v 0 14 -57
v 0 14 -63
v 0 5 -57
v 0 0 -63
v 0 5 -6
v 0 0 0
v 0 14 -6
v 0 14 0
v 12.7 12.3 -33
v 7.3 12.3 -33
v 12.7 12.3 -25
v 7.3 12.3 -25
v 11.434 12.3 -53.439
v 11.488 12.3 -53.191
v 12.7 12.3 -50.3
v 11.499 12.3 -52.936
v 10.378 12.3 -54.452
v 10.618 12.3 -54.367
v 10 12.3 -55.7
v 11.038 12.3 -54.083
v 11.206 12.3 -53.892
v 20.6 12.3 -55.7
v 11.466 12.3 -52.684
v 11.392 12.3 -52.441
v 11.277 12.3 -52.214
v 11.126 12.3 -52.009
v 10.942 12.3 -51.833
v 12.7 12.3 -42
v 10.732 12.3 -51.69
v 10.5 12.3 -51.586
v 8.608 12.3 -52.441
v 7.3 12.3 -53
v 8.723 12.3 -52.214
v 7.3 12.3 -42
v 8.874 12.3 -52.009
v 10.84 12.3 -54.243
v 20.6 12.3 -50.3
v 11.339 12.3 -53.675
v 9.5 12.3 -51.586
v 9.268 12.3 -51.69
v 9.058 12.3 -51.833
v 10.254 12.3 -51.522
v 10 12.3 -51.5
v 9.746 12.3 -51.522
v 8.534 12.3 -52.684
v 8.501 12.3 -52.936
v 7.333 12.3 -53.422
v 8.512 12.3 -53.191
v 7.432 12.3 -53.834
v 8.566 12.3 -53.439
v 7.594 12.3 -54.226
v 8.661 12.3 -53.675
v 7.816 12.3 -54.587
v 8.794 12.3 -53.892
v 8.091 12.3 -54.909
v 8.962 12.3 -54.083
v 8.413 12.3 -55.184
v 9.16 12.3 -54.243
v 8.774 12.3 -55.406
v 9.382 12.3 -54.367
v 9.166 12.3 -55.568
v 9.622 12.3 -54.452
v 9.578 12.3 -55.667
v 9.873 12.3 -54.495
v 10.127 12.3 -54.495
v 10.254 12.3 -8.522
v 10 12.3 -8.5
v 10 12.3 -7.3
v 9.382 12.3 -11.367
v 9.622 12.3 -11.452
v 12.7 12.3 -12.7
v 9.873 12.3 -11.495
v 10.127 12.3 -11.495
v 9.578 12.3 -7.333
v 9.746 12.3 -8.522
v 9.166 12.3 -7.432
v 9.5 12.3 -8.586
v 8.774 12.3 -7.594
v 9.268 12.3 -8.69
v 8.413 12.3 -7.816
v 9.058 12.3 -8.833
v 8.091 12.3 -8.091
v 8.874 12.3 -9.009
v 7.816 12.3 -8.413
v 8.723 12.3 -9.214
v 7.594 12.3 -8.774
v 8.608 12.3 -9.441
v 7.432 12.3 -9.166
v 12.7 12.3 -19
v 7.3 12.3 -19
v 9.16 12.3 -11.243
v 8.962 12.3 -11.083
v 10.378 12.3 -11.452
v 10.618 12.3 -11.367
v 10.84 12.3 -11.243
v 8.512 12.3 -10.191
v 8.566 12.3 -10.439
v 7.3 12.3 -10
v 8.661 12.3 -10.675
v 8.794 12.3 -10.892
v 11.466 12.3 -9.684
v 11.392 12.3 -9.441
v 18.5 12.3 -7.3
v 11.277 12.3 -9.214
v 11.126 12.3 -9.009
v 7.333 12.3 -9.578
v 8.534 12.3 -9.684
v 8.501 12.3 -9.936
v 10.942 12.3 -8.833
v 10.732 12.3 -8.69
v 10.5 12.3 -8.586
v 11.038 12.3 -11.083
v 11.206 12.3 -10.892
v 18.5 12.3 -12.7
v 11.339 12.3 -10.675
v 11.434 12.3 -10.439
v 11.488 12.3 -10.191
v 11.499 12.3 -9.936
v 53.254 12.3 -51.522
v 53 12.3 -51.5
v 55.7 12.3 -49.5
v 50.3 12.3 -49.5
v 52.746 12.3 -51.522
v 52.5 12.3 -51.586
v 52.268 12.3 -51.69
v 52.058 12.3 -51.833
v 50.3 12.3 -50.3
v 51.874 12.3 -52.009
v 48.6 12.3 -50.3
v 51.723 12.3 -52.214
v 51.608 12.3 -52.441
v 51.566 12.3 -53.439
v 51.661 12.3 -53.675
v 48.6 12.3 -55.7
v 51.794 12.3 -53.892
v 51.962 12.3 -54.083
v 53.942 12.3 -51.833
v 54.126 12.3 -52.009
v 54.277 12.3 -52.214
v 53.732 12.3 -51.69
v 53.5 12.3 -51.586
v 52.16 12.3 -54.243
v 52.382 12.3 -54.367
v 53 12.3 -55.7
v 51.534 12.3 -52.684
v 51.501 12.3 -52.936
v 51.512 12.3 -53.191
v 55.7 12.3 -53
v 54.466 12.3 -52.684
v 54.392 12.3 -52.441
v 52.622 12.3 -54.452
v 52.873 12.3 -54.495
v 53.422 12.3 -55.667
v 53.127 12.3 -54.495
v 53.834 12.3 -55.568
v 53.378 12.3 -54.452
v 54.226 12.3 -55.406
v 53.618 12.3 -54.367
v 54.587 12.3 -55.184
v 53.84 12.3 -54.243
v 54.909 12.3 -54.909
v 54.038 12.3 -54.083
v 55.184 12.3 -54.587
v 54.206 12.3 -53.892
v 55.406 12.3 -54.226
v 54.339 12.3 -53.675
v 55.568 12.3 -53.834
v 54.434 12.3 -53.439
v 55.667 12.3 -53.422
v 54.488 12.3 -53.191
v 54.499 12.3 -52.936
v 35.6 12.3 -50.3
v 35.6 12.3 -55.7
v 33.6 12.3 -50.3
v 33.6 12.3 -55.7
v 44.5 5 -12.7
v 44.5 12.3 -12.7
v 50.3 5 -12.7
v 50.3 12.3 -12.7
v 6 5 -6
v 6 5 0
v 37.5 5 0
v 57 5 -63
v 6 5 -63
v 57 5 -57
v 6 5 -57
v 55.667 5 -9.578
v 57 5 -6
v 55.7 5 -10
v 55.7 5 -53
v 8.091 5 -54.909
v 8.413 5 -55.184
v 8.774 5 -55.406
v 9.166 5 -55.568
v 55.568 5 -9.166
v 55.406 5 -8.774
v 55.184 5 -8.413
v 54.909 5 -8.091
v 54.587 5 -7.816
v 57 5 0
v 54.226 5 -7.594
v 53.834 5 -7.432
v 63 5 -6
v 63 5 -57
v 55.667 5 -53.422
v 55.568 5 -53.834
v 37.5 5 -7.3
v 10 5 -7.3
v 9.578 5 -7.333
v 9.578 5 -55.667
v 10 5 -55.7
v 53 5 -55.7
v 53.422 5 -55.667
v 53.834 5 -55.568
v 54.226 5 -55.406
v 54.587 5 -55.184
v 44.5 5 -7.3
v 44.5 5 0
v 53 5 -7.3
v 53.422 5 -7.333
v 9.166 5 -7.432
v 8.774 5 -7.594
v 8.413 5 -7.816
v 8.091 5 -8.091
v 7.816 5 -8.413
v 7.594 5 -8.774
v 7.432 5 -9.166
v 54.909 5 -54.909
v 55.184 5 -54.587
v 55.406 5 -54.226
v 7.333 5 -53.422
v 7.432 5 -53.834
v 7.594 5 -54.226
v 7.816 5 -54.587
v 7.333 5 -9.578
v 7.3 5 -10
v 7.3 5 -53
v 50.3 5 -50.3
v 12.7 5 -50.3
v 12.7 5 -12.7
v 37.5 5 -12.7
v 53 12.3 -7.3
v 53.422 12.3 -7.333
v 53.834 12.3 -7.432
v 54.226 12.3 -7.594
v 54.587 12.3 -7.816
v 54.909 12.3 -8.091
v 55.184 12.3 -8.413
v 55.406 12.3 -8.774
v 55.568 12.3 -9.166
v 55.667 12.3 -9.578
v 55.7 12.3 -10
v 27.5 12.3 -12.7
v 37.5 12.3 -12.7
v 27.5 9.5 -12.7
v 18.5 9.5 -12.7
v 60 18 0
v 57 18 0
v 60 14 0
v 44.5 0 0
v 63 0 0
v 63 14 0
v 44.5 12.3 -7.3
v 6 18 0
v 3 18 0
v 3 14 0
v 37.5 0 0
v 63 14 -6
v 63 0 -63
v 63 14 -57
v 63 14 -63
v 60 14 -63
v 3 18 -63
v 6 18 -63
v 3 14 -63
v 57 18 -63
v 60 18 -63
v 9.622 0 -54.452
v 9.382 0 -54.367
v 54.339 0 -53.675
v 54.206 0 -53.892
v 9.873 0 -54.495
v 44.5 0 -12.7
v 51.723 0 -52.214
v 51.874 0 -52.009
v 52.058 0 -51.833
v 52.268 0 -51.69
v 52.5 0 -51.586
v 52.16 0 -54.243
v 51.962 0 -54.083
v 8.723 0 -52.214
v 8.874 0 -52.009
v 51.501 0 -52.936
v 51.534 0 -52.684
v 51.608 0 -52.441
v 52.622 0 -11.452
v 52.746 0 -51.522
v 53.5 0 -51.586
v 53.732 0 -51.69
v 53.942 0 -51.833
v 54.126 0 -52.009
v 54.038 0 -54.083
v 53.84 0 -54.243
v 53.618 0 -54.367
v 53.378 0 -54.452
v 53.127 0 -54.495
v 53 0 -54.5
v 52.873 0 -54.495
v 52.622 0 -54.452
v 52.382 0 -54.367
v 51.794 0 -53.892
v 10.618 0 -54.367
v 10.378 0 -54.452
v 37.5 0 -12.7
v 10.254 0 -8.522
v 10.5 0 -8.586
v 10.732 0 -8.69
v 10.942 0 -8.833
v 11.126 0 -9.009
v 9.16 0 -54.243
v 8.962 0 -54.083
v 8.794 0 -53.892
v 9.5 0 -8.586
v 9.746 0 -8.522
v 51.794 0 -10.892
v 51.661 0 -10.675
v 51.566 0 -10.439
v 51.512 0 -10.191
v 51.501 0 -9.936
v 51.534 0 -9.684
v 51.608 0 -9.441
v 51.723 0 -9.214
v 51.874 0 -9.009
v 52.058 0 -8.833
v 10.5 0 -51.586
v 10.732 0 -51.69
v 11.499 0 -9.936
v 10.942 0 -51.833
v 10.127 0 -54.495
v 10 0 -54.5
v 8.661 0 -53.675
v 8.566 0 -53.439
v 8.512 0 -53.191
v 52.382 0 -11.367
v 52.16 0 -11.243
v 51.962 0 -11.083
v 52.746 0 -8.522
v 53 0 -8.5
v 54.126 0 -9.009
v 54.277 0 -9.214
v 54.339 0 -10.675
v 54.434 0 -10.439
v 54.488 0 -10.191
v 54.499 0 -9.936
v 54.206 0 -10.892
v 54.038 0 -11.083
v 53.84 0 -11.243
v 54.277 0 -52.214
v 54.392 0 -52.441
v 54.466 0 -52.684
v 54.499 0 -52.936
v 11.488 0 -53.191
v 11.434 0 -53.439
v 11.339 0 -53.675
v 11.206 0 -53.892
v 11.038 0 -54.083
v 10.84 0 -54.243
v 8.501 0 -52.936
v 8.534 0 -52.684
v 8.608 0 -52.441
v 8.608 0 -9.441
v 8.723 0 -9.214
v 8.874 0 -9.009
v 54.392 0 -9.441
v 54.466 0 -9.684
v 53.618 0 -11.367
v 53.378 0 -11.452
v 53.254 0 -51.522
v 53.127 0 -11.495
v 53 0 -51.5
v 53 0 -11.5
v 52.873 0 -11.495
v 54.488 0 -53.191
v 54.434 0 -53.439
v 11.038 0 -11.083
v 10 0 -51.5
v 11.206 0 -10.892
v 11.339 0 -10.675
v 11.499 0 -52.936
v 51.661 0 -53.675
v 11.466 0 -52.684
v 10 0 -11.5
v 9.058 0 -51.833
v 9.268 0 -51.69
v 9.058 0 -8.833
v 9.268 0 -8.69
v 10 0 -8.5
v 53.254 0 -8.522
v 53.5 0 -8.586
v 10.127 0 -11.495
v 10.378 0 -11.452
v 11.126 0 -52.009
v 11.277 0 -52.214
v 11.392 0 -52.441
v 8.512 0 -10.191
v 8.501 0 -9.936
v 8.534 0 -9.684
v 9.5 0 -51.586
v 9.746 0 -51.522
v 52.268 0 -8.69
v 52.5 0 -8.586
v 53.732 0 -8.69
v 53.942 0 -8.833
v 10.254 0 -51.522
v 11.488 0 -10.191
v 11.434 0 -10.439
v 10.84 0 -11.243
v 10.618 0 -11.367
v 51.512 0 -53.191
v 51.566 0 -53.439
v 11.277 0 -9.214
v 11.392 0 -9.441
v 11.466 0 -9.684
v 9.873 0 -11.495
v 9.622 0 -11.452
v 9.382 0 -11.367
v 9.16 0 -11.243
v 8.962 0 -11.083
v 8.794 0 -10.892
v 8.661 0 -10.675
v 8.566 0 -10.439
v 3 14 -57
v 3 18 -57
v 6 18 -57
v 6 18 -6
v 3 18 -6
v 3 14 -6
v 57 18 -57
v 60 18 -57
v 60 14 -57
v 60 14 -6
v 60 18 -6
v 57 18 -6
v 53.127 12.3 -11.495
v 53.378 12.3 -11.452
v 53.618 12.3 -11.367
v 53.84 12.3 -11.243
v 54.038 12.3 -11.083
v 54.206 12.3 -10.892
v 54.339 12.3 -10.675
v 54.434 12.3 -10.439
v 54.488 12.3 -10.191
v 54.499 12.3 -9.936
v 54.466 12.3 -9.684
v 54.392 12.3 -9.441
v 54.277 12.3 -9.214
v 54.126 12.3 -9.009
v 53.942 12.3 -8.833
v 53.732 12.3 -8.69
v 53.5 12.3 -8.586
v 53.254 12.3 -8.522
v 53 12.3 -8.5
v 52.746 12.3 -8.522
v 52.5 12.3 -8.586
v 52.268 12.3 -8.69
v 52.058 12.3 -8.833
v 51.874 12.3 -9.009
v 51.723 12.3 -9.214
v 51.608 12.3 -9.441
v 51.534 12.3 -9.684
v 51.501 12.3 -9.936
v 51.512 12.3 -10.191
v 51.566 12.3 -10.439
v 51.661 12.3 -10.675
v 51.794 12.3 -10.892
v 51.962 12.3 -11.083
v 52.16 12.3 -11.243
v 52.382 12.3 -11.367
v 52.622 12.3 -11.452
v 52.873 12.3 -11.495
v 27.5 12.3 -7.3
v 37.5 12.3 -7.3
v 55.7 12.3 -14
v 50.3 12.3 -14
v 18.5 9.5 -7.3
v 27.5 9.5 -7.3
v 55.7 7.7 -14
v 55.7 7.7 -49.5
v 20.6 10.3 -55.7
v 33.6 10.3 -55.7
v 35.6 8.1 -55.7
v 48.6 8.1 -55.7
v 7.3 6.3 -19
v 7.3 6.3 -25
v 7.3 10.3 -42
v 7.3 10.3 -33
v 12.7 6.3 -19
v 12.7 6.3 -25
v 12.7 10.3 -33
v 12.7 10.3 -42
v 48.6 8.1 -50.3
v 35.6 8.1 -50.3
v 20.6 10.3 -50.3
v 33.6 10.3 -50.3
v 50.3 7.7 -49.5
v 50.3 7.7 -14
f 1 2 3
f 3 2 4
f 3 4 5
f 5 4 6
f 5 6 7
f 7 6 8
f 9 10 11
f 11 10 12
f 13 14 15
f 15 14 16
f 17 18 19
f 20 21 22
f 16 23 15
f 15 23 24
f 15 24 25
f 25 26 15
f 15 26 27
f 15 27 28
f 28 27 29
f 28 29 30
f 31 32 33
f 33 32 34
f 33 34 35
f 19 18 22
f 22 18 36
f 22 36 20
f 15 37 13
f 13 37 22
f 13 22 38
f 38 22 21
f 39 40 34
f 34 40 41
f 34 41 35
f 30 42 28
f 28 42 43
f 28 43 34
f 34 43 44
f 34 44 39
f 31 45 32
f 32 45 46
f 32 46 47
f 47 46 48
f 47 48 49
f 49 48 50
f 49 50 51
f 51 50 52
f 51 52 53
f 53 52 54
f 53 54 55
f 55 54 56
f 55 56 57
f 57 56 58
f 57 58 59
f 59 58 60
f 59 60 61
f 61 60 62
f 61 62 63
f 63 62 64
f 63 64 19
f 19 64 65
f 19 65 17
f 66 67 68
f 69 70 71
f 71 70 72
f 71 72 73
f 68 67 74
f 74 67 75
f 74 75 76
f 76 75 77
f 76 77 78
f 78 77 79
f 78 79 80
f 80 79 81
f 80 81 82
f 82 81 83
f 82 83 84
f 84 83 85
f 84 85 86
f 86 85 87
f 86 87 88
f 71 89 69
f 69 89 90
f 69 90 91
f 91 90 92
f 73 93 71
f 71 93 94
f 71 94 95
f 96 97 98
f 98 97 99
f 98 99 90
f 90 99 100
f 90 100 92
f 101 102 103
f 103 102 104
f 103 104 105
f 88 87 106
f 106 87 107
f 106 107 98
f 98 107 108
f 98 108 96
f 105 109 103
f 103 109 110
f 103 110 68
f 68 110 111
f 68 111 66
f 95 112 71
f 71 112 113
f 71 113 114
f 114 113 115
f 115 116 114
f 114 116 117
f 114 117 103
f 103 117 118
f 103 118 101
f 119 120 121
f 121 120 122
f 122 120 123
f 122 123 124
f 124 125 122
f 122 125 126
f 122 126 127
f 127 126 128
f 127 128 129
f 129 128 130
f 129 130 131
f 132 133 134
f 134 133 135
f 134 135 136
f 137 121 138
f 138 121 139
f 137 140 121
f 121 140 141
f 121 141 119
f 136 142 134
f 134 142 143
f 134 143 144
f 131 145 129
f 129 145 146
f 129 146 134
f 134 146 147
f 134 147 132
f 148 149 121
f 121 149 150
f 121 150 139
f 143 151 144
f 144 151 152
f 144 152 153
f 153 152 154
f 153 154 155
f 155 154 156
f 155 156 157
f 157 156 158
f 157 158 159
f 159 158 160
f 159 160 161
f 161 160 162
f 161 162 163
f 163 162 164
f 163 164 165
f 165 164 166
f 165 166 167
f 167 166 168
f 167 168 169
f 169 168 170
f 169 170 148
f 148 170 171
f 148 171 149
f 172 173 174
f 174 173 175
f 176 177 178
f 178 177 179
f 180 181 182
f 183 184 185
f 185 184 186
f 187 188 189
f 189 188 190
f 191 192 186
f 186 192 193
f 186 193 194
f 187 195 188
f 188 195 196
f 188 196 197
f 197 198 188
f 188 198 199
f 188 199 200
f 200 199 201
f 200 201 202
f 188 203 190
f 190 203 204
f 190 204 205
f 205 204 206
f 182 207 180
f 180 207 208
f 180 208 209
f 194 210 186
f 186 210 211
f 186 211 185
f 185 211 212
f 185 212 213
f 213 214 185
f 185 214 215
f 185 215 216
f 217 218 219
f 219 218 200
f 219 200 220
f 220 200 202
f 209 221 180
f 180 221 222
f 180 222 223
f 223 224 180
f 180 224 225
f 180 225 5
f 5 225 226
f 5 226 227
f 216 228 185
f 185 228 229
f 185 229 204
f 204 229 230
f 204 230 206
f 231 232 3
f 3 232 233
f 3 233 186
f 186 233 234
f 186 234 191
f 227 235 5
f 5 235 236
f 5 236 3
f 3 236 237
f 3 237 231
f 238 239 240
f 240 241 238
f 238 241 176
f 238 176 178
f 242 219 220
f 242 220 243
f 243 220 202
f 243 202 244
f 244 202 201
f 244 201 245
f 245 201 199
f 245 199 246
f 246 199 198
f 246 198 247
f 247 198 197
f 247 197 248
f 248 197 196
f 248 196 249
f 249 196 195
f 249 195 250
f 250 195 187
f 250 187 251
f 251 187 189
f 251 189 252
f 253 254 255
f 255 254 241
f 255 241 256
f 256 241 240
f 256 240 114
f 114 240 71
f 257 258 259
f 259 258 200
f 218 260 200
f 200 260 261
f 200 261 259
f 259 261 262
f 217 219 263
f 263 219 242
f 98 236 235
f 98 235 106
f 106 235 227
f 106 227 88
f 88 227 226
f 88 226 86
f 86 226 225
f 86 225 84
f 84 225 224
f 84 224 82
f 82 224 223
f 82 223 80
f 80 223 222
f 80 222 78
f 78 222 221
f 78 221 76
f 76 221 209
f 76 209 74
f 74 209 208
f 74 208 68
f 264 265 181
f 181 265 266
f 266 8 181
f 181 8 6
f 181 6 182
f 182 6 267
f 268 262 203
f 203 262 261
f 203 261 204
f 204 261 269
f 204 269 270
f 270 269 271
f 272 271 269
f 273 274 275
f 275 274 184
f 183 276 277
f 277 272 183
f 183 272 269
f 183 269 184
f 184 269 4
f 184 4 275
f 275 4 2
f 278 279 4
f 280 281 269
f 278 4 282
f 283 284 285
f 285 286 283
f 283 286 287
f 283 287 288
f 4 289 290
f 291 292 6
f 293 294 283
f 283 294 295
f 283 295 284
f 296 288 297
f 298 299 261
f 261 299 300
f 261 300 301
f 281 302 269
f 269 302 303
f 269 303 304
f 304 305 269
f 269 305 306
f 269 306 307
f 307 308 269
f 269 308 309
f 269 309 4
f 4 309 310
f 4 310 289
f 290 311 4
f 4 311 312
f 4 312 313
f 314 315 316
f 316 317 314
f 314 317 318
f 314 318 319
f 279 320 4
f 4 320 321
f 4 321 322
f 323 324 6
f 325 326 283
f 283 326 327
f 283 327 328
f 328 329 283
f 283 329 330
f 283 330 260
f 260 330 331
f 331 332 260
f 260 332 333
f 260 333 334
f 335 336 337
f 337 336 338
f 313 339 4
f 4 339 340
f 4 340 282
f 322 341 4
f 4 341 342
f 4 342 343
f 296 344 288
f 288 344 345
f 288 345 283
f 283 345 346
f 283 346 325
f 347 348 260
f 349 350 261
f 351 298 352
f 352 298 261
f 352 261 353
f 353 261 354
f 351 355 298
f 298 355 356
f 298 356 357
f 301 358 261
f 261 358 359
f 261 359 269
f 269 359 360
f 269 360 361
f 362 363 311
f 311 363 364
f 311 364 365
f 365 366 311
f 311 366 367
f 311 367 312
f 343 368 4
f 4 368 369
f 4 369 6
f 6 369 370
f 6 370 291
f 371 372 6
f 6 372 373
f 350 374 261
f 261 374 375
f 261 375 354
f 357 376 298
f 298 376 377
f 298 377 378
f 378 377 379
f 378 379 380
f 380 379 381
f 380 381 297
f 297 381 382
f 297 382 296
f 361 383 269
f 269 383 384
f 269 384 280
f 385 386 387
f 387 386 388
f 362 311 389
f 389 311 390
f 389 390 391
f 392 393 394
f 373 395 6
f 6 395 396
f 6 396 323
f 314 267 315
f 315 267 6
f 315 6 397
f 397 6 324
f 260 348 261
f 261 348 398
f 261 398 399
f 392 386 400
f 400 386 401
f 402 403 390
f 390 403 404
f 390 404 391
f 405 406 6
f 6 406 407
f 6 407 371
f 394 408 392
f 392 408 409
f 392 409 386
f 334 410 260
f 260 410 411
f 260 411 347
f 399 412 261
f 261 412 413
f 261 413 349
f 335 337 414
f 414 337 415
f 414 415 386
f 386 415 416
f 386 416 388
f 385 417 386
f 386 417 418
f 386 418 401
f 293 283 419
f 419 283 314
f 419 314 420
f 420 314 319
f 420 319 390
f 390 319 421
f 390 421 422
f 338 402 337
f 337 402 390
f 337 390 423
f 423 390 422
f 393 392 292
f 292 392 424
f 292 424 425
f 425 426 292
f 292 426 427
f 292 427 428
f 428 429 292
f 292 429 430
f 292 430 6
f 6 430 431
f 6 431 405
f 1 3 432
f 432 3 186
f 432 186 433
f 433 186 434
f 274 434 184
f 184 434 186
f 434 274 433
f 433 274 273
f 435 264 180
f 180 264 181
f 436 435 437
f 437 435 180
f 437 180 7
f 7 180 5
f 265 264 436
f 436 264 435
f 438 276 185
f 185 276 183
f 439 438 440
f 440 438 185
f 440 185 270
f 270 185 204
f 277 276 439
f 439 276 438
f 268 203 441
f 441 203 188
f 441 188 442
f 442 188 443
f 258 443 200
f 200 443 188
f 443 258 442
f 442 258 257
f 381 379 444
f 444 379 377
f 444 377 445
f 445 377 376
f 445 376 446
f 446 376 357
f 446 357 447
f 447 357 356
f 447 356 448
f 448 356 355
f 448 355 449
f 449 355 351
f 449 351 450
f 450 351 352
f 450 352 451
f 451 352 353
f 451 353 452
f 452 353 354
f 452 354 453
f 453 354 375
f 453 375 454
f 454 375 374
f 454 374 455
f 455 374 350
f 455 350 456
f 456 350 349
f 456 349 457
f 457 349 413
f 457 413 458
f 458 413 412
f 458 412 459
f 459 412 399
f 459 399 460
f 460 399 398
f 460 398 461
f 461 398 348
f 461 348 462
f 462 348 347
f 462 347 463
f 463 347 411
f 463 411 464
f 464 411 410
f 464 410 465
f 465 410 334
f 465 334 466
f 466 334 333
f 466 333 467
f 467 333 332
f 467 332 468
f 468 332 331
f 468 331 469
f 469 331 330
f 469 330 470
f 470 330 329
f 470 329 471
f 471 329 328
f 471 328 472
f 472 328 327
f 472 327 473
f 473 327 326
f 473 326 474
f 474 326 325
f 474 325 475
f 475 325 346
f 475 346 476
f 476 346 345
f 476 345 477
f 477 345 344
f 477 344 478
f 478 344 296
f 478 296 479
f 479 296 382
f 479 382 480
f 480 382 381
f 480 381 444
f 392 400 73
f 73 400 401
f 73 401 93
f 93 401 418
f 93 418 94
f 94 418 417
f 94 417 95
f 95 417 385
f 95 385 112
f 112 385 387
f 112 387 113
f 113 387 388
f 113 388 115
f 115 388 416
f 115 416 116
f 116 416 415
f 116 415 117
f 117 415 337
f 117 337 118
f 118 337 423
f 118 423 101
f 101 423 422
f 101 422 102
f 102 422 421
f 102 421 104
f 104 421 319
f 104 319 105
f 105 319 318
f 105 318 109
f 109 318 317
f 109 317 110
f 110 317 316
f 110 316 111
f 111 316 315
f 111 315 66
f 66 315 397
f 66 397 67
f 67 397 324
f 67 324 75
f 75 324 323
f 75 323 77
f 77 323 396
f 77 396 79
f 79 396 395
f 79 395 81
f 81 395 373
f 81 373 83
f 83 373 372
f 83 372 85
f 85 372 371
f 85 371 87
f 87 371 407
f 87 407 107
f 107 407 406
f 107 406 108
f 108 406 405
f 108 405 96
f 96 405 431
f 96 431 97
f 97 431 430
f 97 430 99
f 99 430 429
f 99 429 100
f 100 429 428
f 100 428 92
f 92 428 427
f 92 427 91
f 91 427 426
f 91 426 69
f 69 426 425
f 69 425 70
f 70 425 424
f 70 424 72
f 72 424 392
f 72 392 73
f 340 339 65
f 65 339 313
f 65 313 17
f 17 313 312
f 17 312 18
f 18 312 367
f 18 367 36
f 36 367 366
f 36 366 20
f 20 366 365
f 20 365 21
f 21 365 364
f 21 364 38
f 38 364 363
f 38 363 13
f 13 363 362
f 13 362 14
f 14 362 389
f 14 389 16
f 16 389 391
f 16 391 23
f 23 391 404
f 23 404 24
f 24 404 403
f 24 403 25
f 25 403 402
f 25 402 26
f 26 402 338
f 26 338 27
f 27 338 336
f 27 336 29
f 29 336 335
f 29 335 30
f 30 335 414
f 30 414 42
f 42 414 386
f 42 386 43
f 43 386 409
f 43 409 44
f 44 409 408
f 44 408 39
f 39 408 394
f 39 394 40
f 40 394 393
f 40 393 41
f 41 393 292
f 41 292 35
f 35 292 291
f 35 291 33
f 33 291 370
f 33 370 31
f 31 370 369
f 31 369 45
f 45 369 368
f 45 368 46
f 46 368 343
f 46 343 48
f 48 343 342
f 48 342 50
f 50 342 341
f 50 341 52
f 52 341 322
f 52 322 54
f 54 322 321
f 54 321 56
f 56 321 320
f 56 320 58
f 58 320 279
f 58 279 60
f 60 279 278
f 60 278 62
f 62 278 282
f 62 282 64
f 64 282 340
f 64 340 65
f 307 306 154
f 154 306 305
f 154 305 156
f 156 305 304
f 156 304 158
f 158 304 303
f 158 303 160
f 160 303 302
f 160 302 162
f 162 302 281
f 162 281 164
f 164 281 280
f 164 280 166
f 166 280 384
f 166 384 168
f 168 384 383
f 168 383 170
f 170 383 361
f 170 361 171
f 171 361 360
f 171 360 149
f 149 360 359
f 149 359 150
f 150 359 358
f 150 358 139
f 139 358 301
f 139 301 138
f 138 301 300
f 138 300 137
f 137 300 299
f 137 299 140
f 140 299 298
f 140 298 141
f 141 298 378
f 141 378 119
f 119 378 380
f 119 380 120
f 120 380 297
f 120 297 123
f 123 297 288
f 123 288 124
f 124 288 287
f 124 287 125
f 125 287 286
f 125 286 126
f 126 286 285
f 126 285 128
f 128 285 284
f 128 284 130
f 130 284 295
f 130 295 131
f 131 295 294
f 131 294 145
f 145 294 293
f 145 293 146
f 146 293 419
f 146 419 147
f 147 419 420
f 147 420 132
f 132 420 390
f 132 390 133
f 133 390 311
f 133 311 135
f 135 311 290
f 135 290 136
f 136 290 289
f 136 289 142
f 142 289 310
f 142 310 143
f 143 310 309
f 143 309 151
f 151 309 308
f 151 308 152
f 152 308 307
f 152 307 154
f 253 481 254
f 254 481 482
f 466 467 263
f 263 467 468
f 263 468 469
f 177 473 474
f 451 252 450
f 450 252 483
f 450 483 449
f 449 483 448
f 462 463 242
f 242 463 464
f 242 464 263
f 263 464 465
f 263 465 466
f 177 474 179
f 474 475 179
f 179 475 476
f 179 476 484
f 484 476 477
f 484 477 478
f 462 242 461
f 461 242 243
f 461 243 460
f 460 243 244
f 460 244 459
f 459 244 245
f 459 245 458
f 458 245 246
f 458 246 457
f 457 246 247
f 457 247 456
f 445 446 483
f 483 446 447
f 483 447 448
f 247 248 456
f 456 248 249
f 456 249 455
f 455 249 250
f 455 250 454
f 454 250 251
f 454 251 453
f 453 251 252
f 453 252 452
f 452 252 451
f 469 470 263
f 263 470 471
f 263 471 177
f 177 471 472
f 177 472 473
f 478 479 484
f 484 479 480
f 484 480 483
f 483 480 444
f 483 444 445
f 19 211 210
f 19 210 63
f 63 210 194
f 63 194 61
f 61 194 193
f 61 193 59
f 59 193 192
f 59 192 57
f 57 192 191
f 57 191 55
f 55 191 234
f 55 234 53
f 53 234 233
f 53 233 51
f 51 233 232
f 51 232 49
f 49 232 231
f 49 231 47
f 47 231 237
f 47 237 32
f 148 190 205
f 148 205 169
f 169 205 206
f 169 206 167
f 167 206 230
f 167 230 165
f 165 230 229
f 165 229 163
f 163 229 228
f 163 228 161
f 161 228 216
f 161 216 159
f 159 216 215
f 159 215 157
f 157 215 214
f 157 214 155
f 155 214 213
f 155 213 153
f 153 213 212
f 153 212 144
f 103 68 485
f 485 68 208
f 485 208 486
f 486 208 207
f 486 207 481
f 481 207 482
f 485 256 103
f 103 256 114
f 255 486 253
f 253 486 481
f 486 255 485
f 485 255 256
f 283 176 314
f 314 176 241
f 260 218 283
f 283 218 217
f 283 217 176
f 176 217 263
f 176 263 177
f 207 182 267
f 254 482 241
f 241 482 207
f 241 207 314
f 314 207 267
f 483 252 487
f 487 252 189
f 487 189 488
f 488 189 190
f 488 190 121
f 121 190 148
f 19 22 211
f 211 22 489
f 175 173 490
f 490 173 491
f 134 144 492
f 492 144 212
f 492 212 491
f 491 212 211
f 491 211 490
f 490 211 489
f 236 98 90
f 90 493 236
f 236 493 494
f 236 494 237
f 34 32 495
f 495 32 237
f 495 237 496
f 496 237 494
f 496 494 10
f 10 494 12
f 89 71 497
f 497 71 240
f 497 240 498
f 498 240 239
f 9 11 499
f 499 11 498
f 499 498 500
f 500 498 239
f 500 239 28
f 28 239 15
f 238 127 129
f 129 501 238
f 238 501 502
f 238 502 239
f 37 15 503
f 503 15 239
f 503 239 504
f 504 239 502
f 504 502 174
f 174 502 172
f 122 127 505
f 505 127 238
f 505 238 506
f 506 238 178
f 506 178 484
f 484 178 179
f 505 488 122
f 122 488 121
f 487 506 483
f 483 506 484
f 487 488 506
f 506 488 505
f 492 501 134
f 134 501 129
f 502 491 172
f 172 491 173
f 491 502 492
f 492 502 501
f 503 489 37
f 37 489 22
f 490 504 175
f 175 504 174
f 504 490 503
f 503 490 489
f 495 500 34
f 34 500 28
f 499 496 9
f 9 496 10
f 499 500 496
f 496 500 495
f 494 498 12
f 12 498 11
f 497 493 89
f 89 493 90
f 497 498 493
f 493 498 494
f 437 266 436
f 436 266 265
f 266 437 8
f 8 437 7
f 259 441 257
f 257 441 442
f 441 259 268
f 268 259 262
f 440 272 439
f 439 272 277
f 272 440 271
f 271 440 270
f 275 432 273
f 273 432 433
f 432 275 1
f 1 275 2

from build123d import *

# Parameters (mm, degrees)
SKETCH1_W           = 63
SKETCH1_H           = 63
BOSS_EXTRUDE1_DEPTH = 5
SKETCH2_W           = 6
SKETCH2_H           = 6
BOSS_EXTRUDE2_DEPTH = 13
SKETCH3_R           = 1.5
CUT_EXTRUDE1_DEPTH  = 5
BOSS_EXTRUDE3_START = 7.3
SKETCH4_R           = 2.7
SKETCH4_R_2         = 1.5
BOSS_EXTRUDE3_DEPTH = 7.3
BOSS_EXTRUDE4_START = 7.3
BOSS_EXTRUDE4_DEPTH = 7.3
SKETCH6_W           = 9
SKETCH6_H           = 5.4
CUT_EXTRUDE2_DEPTH  = 2.8
CUT_EXTRUDE3_REACH  = 91.94
SKETCH7_W           = 7
SKETCH7_H           = 12.7
BOSS_EXTRUDE5_START = 7.3
BOSS_EXTRUDE5_DEPTH = 7.3
SKETCH9_W           = 5.4
SKETCH9_H           = 35.5
CUT_EXTRUDE4_DEPTH  = 4.6
SKETCH10_W          = 13
SKETCH10_H          = 5.4
CUT_EXTRUDE5_DEPTH  = 4.2
SKETCH11_W          = 13
SKETCH11_H          = 5.4
CUT_EXTRUDE6_DEPTH  = 2
SKETCH12_W          = 5.4
SKETCH12_H          = 9
CUT_EXTRUDE7_DEPTH  = 2
SKETCH13_W          = 5.4
SKETCH13_H          = 6
CUT_EXTRUDE8_DEPTH  = 6
SKETCH14_W          = 3
SKETCH14_H          = 6
CUT_EXTRUDE9_DEPTH  = 4


with BuildPart() as part:
    # Sketch1 → Boss-Extrude1 (new body)
    with BuildSketch(Plane(origin=(0, 0, 0), x_dir=(1, 0, 0), z_dir=(0, 1, 0))):
        with Locations((31.5, 31.5)):
            Rectangle(SKETCH1_W, SKETCH1_H)
    extrude(amount=BOSS_EXTRUDE1_DEPTH)

    # Sketch2 → Boss-Extrude2 (add)
    with BuildSketch(Plane(origin=(0, 5, 0), x_dir=(1, 0, 0), z_dir=(0, 1, 0))):
        with Locations((3, 60)):
            Rectangle(SKETCH2_W, SKETCH2_H)
        with Locations((3, 3)):
            Rectangle(SKETCH2_W, SKETCH2_H)
        with Locations((60, 60)):
            Rectangle(SKETCH2_W, SKETCH2_H)
        with Locations((60, 3)):
            Rectangle(SKETCH2_W, SKETCH2_H)
    extrude(amount=BOSS_EXTRUDE2_DEPTH)

    # Sketch3 → Cut-Extrude1 (cut)
    with BuildSketch(Plane(origin=(0, 5, 0), x_dir=(1, 0, 0), z_dir=(0, 1, 0))):
        with Locations(Location((53, 10, 0), (0, 0, 270))):
            Circle(SKETCH3_R)
        with Locations(Location((10, 10, 0), (0, 0, 270))):
            Circle(SKETCH3_R)
        with Locations(Location((10, 53, 0), (0, 0, 270))):
            Circle(SKETCH3_R)
        with Locations(Location((53, 53, 0), (0, 0, 270))):
            Circle(SKETCH3_R)
    extrude(amount=-CUT_EXTRUDE1_DEPTH, mode=Mode.SUBTRACT)

    # Sketch4 → Boss-Extrude3 (add)
    # profile 1 of 4: a face of its own
    with BuildSketch(Plane(origin=(0, 5, 0), x_dir=(1, 0, 0), z_dir=(0, 1, 0)).offset(BOSS_EXTRUDE3_START)):
        with Locations(Location((10, 10, 0), (0, 0, 90))):
            Circle(SKETCH4_R)
        with Locations(Location((10, 10, 0), (0, 0, 270))):
            Circle(SKETCH4_R_2, mode=Mode.SUBTRACT)
    # profile 2 of 4: a face of its own
    with BuildSketch(Plane(origin=(0, 5, 0), x_dir=(1, 0, 0), z_dir=(0, 1, 0)).offset(BOSS_EXTRUDE3_START)):
        with Locations(Location((10, 53, 0), (0, 0, 90))):
            Circle(SKETCH4_R)
        with Locations(Location((10, 53, 0), (0, 0, 270))):
            Circle(SKETCH4_R_2, mode=Mode.SUBTRACT)
    # profile 3 of 4: a face of its own
    with BuildSketch(Plane(origin=(0, 5, 0), x_dir=(1, 0, 0), z_dir=(0, 1, 0)).offset(BOSS_EXTRUDE3_START)):
        with Locations(Location((53, 10, 0), (0, 0, 90))):
            Circle(SKETCH4_R)
        with Locations(Location((53, 10, 0), (0, 0, 270))):
            Circle(SKETCH4_R_2, mode=Mode.SUBTRACT)
    # profile 4 of 4: a face of its own
    with BuildSketch(Plane(origin=(0, 5, 0), x_dir=(1, 0, 0), z_dir=(0, 1, 0)).offset(BOSS_EXTRUDE3_START)):
        with Locations(Location((53, 53, 0), (0, 0, 90))):
            Circle(SKETCH4_R)
        with Locations(Location((53, 53, 0), (0, 0, 270))):
            Circle(SKETCH4_R_2, mode=Mode.SUBTRACT)
    extrude(amount=-BOSS_EXTRUDE3_DEPTH)

    # Sketch5 → Boss-Extrude4 (add)
    with BuildSketch(Plane(origin=(0, 5, 0), x_dir=(1, 0, 0), z_dir=(0, 1, 0)).offset(BOSS_EXTRUDE4_START)):
        with BuildLine():
            Line((10, 7.3), (53, 7.3))
            ThreePointArc((53, 7.3), (50.3, 10), (53, 12.7))
            Line((53, 12.7), (10, 12.7))
            ThreePointArc((10, 12.7), (12.7, 10), (10, 7.3))
        make_face()
    extrude(amount=-BOSS_EXTRUDE4_DEPTH)

    # Sketch6 → Cut-Extrude2 (cut)
    with BuildSketch(Plane(origin=(0, 12.3, 0), x_dir=(1, 0, 0), z_dir=(0, 1, 0))):
        with Locations((23, 10)):
            Rectangle(SKETCH6_W, SKETCH6_H)
    extrude(amount=-CUT_EXTRUDE2_DEPTH, mode=Mode.SUBTRACT)

    # Cut-Extrude3: up to this face of the body (flat: up to its plane)
    cut_extrude3_end = Plane(part.part.faces().sort_by_distance((31.5, 0, -31.5))[0])
    # Sketch7 → Cut-Extrude3 (cut, up to the picked face)
    with BuildSketch(Plane(origin=(0, 12.3, 0), x_dir=(1, 0, 0), z_dir=(0, 1, 0)), mode=Mode.PRIVATE) as cut_extrude3_sk1:
        with Locations((41, 6.35)):
            Rectangle(SKETCH7_W, SKETCH7_H)
    cut_extrude3_tool1 = split(extrude(cut_extrude3_sk1.sketch, amount=-CUT_EXTRUDE3_REACH, mode=Mode.PRIVATE), bisect_by=cut_extrude3_end, keep=Keep.BOTH, mode=Mode.PRIVATE)
    add(cut_extrude3_tool1.solids().sort_by(Axis((41, 12.3, -6.35), (0, -1, 0)))[0], mode=Mode.SUBTRACT)

    # Sketch8 → Boss-Extrude5 (add)
    with BuildSketch(Plane(origin=(0, 5, 0), x_dir=(1, 0, 0), z_dir=(0, 1, 0)).offset(BOSS_EXTRUDE5_START)):
        with BuildLine():
            Line((55.7, 53), (55.7, 10))
            ThreePointArc((55.7, 10), (54.909188309, 11.909188309), (53, 12.7))
            Line((53, 12.7), (50.3, 12.7))
            Line((50.3, 12.7), (50.3, 50.3))
            Line((50.3, 50.3), (12.7, 50.3))
            Line((12.7, 50.3), (12.7, 12.7))
            Line((12.7, 12.7), (10, 12.7))
            ThreePointArc((10, 12.7), (8.090811691, 11.909188309), (7.3, 10))
            Line((7.3, 10), (7.3, 53))
            ThreePointArc((7.3, 53), (8.090811691, 51.090811691), (10, 50.3))
            ThreePointArc((10, 50.3), (12.7, 53), (10, 55.7))
            Line((10, 55.7), (53, 55.7))
            ThreePointArc((53, 55.7), (51.090811691, 54.909188309), (50.3, 53))
            ThreePointArc((50.3, 53), (53, 50.3), (55.7, 53))
        make_face()
    extrude(amount=-BOSS_EXTRUDE5_DEPTH)

    # Sketch9 → Cut-Extrude4 (cut)
    with BuildSketch(Plane(origin=(0, 12.3, 0), x_dir=(1, 0, 0), z_dir=(0, 1, 0))):
        with Locations((53, 31.75)):
            Rectangle(SKETCH9_W, SKETCH9_H)
    extrude(amount=-CUT_EXTRUDE4_DEPTH, mode=Mode.SUBTRACT)

    # Sketch10 → Cut-Extrude5 (cut)
    with BuildSketch(Plane(origin=(0, 12.3, 0), x_dir=(1, 0, 0), z_dir=(0, 1, 0))):
        with Locations((42.1, 53)):
            Rectangle(SKETCH10_W, SKETCH10_H)
    extrude(amount=-CUT_EXTRUDE5_DEPTH, mode=Mode.SUBTRACT)

    # Sketch11 → Cut-Extrude6 (cut)
    with BuildSketch(Plane(origin=(0, 12.3, 0), x_dir=(1, 0, 0), z_dir=(0, 1, 0))):
        with Locations((27.1, 53)):
            Rectangle(SKETCH11_W, SKETCH11_H)
    extrude(amount=-CUT_EXTRUDE6_DEPTH, mode=Mode.SUBTRACT)

    # Sketch12 → Cut-Extrude7 (cut)
    with BuildSketch(Plane(origin=(0, 12.3, 0), x_dir=(1, 0, 0), z_dir=(0, 1, 0))):
        with Locations((10, 37.5)):
            Rectangle(SKETCH12_W, SKETCH12_H)
    extrude(amount=-CUT_EXTRUDE7_DEPTH, mode=Mode.SUBTRACT)

    # Sketch13 → Cut-Extrude8 (cut)
    with BuildSketch(Plane(origin=(0, 12.3, 0), x_dir=(1, 0, 0), z_dir=(0, 1, 0))):
        with Locations((10, 22)):
            Rectangle(SKETCH13_W, SKETCH13_H)
    extrude(amount=-CUT_EXTRUDE8_DEPTH, mode=Mode.SUBTRACT)

    # Sketch14 → Cut-Extrude9 (cut)
    with BuildSketch(Plane(origin=(0, 18, 0), x_dir=(1, 0, 0), z_dir=(0, 1, 0))):
        with Locations((1.5, 3)):
            Rectangle(SKETCH14_W, SKETCH14_H)
        with Locations((61.5, 3)):
            Rectangle(SKETCH14_W, SKETCH14_H)
        with Locations((61.5, 60)):
            Rectangle(SKETCH14_W, SKETCH14_H)
        with Locations((1.5, 60)):
            Rectangle(SKETCH14_W, SKETCH14_H)
    extrude(amount=-CUT_EXTRUDE9_DEPTH, mode=Mode.SUBTRACT)


solid = part.part
